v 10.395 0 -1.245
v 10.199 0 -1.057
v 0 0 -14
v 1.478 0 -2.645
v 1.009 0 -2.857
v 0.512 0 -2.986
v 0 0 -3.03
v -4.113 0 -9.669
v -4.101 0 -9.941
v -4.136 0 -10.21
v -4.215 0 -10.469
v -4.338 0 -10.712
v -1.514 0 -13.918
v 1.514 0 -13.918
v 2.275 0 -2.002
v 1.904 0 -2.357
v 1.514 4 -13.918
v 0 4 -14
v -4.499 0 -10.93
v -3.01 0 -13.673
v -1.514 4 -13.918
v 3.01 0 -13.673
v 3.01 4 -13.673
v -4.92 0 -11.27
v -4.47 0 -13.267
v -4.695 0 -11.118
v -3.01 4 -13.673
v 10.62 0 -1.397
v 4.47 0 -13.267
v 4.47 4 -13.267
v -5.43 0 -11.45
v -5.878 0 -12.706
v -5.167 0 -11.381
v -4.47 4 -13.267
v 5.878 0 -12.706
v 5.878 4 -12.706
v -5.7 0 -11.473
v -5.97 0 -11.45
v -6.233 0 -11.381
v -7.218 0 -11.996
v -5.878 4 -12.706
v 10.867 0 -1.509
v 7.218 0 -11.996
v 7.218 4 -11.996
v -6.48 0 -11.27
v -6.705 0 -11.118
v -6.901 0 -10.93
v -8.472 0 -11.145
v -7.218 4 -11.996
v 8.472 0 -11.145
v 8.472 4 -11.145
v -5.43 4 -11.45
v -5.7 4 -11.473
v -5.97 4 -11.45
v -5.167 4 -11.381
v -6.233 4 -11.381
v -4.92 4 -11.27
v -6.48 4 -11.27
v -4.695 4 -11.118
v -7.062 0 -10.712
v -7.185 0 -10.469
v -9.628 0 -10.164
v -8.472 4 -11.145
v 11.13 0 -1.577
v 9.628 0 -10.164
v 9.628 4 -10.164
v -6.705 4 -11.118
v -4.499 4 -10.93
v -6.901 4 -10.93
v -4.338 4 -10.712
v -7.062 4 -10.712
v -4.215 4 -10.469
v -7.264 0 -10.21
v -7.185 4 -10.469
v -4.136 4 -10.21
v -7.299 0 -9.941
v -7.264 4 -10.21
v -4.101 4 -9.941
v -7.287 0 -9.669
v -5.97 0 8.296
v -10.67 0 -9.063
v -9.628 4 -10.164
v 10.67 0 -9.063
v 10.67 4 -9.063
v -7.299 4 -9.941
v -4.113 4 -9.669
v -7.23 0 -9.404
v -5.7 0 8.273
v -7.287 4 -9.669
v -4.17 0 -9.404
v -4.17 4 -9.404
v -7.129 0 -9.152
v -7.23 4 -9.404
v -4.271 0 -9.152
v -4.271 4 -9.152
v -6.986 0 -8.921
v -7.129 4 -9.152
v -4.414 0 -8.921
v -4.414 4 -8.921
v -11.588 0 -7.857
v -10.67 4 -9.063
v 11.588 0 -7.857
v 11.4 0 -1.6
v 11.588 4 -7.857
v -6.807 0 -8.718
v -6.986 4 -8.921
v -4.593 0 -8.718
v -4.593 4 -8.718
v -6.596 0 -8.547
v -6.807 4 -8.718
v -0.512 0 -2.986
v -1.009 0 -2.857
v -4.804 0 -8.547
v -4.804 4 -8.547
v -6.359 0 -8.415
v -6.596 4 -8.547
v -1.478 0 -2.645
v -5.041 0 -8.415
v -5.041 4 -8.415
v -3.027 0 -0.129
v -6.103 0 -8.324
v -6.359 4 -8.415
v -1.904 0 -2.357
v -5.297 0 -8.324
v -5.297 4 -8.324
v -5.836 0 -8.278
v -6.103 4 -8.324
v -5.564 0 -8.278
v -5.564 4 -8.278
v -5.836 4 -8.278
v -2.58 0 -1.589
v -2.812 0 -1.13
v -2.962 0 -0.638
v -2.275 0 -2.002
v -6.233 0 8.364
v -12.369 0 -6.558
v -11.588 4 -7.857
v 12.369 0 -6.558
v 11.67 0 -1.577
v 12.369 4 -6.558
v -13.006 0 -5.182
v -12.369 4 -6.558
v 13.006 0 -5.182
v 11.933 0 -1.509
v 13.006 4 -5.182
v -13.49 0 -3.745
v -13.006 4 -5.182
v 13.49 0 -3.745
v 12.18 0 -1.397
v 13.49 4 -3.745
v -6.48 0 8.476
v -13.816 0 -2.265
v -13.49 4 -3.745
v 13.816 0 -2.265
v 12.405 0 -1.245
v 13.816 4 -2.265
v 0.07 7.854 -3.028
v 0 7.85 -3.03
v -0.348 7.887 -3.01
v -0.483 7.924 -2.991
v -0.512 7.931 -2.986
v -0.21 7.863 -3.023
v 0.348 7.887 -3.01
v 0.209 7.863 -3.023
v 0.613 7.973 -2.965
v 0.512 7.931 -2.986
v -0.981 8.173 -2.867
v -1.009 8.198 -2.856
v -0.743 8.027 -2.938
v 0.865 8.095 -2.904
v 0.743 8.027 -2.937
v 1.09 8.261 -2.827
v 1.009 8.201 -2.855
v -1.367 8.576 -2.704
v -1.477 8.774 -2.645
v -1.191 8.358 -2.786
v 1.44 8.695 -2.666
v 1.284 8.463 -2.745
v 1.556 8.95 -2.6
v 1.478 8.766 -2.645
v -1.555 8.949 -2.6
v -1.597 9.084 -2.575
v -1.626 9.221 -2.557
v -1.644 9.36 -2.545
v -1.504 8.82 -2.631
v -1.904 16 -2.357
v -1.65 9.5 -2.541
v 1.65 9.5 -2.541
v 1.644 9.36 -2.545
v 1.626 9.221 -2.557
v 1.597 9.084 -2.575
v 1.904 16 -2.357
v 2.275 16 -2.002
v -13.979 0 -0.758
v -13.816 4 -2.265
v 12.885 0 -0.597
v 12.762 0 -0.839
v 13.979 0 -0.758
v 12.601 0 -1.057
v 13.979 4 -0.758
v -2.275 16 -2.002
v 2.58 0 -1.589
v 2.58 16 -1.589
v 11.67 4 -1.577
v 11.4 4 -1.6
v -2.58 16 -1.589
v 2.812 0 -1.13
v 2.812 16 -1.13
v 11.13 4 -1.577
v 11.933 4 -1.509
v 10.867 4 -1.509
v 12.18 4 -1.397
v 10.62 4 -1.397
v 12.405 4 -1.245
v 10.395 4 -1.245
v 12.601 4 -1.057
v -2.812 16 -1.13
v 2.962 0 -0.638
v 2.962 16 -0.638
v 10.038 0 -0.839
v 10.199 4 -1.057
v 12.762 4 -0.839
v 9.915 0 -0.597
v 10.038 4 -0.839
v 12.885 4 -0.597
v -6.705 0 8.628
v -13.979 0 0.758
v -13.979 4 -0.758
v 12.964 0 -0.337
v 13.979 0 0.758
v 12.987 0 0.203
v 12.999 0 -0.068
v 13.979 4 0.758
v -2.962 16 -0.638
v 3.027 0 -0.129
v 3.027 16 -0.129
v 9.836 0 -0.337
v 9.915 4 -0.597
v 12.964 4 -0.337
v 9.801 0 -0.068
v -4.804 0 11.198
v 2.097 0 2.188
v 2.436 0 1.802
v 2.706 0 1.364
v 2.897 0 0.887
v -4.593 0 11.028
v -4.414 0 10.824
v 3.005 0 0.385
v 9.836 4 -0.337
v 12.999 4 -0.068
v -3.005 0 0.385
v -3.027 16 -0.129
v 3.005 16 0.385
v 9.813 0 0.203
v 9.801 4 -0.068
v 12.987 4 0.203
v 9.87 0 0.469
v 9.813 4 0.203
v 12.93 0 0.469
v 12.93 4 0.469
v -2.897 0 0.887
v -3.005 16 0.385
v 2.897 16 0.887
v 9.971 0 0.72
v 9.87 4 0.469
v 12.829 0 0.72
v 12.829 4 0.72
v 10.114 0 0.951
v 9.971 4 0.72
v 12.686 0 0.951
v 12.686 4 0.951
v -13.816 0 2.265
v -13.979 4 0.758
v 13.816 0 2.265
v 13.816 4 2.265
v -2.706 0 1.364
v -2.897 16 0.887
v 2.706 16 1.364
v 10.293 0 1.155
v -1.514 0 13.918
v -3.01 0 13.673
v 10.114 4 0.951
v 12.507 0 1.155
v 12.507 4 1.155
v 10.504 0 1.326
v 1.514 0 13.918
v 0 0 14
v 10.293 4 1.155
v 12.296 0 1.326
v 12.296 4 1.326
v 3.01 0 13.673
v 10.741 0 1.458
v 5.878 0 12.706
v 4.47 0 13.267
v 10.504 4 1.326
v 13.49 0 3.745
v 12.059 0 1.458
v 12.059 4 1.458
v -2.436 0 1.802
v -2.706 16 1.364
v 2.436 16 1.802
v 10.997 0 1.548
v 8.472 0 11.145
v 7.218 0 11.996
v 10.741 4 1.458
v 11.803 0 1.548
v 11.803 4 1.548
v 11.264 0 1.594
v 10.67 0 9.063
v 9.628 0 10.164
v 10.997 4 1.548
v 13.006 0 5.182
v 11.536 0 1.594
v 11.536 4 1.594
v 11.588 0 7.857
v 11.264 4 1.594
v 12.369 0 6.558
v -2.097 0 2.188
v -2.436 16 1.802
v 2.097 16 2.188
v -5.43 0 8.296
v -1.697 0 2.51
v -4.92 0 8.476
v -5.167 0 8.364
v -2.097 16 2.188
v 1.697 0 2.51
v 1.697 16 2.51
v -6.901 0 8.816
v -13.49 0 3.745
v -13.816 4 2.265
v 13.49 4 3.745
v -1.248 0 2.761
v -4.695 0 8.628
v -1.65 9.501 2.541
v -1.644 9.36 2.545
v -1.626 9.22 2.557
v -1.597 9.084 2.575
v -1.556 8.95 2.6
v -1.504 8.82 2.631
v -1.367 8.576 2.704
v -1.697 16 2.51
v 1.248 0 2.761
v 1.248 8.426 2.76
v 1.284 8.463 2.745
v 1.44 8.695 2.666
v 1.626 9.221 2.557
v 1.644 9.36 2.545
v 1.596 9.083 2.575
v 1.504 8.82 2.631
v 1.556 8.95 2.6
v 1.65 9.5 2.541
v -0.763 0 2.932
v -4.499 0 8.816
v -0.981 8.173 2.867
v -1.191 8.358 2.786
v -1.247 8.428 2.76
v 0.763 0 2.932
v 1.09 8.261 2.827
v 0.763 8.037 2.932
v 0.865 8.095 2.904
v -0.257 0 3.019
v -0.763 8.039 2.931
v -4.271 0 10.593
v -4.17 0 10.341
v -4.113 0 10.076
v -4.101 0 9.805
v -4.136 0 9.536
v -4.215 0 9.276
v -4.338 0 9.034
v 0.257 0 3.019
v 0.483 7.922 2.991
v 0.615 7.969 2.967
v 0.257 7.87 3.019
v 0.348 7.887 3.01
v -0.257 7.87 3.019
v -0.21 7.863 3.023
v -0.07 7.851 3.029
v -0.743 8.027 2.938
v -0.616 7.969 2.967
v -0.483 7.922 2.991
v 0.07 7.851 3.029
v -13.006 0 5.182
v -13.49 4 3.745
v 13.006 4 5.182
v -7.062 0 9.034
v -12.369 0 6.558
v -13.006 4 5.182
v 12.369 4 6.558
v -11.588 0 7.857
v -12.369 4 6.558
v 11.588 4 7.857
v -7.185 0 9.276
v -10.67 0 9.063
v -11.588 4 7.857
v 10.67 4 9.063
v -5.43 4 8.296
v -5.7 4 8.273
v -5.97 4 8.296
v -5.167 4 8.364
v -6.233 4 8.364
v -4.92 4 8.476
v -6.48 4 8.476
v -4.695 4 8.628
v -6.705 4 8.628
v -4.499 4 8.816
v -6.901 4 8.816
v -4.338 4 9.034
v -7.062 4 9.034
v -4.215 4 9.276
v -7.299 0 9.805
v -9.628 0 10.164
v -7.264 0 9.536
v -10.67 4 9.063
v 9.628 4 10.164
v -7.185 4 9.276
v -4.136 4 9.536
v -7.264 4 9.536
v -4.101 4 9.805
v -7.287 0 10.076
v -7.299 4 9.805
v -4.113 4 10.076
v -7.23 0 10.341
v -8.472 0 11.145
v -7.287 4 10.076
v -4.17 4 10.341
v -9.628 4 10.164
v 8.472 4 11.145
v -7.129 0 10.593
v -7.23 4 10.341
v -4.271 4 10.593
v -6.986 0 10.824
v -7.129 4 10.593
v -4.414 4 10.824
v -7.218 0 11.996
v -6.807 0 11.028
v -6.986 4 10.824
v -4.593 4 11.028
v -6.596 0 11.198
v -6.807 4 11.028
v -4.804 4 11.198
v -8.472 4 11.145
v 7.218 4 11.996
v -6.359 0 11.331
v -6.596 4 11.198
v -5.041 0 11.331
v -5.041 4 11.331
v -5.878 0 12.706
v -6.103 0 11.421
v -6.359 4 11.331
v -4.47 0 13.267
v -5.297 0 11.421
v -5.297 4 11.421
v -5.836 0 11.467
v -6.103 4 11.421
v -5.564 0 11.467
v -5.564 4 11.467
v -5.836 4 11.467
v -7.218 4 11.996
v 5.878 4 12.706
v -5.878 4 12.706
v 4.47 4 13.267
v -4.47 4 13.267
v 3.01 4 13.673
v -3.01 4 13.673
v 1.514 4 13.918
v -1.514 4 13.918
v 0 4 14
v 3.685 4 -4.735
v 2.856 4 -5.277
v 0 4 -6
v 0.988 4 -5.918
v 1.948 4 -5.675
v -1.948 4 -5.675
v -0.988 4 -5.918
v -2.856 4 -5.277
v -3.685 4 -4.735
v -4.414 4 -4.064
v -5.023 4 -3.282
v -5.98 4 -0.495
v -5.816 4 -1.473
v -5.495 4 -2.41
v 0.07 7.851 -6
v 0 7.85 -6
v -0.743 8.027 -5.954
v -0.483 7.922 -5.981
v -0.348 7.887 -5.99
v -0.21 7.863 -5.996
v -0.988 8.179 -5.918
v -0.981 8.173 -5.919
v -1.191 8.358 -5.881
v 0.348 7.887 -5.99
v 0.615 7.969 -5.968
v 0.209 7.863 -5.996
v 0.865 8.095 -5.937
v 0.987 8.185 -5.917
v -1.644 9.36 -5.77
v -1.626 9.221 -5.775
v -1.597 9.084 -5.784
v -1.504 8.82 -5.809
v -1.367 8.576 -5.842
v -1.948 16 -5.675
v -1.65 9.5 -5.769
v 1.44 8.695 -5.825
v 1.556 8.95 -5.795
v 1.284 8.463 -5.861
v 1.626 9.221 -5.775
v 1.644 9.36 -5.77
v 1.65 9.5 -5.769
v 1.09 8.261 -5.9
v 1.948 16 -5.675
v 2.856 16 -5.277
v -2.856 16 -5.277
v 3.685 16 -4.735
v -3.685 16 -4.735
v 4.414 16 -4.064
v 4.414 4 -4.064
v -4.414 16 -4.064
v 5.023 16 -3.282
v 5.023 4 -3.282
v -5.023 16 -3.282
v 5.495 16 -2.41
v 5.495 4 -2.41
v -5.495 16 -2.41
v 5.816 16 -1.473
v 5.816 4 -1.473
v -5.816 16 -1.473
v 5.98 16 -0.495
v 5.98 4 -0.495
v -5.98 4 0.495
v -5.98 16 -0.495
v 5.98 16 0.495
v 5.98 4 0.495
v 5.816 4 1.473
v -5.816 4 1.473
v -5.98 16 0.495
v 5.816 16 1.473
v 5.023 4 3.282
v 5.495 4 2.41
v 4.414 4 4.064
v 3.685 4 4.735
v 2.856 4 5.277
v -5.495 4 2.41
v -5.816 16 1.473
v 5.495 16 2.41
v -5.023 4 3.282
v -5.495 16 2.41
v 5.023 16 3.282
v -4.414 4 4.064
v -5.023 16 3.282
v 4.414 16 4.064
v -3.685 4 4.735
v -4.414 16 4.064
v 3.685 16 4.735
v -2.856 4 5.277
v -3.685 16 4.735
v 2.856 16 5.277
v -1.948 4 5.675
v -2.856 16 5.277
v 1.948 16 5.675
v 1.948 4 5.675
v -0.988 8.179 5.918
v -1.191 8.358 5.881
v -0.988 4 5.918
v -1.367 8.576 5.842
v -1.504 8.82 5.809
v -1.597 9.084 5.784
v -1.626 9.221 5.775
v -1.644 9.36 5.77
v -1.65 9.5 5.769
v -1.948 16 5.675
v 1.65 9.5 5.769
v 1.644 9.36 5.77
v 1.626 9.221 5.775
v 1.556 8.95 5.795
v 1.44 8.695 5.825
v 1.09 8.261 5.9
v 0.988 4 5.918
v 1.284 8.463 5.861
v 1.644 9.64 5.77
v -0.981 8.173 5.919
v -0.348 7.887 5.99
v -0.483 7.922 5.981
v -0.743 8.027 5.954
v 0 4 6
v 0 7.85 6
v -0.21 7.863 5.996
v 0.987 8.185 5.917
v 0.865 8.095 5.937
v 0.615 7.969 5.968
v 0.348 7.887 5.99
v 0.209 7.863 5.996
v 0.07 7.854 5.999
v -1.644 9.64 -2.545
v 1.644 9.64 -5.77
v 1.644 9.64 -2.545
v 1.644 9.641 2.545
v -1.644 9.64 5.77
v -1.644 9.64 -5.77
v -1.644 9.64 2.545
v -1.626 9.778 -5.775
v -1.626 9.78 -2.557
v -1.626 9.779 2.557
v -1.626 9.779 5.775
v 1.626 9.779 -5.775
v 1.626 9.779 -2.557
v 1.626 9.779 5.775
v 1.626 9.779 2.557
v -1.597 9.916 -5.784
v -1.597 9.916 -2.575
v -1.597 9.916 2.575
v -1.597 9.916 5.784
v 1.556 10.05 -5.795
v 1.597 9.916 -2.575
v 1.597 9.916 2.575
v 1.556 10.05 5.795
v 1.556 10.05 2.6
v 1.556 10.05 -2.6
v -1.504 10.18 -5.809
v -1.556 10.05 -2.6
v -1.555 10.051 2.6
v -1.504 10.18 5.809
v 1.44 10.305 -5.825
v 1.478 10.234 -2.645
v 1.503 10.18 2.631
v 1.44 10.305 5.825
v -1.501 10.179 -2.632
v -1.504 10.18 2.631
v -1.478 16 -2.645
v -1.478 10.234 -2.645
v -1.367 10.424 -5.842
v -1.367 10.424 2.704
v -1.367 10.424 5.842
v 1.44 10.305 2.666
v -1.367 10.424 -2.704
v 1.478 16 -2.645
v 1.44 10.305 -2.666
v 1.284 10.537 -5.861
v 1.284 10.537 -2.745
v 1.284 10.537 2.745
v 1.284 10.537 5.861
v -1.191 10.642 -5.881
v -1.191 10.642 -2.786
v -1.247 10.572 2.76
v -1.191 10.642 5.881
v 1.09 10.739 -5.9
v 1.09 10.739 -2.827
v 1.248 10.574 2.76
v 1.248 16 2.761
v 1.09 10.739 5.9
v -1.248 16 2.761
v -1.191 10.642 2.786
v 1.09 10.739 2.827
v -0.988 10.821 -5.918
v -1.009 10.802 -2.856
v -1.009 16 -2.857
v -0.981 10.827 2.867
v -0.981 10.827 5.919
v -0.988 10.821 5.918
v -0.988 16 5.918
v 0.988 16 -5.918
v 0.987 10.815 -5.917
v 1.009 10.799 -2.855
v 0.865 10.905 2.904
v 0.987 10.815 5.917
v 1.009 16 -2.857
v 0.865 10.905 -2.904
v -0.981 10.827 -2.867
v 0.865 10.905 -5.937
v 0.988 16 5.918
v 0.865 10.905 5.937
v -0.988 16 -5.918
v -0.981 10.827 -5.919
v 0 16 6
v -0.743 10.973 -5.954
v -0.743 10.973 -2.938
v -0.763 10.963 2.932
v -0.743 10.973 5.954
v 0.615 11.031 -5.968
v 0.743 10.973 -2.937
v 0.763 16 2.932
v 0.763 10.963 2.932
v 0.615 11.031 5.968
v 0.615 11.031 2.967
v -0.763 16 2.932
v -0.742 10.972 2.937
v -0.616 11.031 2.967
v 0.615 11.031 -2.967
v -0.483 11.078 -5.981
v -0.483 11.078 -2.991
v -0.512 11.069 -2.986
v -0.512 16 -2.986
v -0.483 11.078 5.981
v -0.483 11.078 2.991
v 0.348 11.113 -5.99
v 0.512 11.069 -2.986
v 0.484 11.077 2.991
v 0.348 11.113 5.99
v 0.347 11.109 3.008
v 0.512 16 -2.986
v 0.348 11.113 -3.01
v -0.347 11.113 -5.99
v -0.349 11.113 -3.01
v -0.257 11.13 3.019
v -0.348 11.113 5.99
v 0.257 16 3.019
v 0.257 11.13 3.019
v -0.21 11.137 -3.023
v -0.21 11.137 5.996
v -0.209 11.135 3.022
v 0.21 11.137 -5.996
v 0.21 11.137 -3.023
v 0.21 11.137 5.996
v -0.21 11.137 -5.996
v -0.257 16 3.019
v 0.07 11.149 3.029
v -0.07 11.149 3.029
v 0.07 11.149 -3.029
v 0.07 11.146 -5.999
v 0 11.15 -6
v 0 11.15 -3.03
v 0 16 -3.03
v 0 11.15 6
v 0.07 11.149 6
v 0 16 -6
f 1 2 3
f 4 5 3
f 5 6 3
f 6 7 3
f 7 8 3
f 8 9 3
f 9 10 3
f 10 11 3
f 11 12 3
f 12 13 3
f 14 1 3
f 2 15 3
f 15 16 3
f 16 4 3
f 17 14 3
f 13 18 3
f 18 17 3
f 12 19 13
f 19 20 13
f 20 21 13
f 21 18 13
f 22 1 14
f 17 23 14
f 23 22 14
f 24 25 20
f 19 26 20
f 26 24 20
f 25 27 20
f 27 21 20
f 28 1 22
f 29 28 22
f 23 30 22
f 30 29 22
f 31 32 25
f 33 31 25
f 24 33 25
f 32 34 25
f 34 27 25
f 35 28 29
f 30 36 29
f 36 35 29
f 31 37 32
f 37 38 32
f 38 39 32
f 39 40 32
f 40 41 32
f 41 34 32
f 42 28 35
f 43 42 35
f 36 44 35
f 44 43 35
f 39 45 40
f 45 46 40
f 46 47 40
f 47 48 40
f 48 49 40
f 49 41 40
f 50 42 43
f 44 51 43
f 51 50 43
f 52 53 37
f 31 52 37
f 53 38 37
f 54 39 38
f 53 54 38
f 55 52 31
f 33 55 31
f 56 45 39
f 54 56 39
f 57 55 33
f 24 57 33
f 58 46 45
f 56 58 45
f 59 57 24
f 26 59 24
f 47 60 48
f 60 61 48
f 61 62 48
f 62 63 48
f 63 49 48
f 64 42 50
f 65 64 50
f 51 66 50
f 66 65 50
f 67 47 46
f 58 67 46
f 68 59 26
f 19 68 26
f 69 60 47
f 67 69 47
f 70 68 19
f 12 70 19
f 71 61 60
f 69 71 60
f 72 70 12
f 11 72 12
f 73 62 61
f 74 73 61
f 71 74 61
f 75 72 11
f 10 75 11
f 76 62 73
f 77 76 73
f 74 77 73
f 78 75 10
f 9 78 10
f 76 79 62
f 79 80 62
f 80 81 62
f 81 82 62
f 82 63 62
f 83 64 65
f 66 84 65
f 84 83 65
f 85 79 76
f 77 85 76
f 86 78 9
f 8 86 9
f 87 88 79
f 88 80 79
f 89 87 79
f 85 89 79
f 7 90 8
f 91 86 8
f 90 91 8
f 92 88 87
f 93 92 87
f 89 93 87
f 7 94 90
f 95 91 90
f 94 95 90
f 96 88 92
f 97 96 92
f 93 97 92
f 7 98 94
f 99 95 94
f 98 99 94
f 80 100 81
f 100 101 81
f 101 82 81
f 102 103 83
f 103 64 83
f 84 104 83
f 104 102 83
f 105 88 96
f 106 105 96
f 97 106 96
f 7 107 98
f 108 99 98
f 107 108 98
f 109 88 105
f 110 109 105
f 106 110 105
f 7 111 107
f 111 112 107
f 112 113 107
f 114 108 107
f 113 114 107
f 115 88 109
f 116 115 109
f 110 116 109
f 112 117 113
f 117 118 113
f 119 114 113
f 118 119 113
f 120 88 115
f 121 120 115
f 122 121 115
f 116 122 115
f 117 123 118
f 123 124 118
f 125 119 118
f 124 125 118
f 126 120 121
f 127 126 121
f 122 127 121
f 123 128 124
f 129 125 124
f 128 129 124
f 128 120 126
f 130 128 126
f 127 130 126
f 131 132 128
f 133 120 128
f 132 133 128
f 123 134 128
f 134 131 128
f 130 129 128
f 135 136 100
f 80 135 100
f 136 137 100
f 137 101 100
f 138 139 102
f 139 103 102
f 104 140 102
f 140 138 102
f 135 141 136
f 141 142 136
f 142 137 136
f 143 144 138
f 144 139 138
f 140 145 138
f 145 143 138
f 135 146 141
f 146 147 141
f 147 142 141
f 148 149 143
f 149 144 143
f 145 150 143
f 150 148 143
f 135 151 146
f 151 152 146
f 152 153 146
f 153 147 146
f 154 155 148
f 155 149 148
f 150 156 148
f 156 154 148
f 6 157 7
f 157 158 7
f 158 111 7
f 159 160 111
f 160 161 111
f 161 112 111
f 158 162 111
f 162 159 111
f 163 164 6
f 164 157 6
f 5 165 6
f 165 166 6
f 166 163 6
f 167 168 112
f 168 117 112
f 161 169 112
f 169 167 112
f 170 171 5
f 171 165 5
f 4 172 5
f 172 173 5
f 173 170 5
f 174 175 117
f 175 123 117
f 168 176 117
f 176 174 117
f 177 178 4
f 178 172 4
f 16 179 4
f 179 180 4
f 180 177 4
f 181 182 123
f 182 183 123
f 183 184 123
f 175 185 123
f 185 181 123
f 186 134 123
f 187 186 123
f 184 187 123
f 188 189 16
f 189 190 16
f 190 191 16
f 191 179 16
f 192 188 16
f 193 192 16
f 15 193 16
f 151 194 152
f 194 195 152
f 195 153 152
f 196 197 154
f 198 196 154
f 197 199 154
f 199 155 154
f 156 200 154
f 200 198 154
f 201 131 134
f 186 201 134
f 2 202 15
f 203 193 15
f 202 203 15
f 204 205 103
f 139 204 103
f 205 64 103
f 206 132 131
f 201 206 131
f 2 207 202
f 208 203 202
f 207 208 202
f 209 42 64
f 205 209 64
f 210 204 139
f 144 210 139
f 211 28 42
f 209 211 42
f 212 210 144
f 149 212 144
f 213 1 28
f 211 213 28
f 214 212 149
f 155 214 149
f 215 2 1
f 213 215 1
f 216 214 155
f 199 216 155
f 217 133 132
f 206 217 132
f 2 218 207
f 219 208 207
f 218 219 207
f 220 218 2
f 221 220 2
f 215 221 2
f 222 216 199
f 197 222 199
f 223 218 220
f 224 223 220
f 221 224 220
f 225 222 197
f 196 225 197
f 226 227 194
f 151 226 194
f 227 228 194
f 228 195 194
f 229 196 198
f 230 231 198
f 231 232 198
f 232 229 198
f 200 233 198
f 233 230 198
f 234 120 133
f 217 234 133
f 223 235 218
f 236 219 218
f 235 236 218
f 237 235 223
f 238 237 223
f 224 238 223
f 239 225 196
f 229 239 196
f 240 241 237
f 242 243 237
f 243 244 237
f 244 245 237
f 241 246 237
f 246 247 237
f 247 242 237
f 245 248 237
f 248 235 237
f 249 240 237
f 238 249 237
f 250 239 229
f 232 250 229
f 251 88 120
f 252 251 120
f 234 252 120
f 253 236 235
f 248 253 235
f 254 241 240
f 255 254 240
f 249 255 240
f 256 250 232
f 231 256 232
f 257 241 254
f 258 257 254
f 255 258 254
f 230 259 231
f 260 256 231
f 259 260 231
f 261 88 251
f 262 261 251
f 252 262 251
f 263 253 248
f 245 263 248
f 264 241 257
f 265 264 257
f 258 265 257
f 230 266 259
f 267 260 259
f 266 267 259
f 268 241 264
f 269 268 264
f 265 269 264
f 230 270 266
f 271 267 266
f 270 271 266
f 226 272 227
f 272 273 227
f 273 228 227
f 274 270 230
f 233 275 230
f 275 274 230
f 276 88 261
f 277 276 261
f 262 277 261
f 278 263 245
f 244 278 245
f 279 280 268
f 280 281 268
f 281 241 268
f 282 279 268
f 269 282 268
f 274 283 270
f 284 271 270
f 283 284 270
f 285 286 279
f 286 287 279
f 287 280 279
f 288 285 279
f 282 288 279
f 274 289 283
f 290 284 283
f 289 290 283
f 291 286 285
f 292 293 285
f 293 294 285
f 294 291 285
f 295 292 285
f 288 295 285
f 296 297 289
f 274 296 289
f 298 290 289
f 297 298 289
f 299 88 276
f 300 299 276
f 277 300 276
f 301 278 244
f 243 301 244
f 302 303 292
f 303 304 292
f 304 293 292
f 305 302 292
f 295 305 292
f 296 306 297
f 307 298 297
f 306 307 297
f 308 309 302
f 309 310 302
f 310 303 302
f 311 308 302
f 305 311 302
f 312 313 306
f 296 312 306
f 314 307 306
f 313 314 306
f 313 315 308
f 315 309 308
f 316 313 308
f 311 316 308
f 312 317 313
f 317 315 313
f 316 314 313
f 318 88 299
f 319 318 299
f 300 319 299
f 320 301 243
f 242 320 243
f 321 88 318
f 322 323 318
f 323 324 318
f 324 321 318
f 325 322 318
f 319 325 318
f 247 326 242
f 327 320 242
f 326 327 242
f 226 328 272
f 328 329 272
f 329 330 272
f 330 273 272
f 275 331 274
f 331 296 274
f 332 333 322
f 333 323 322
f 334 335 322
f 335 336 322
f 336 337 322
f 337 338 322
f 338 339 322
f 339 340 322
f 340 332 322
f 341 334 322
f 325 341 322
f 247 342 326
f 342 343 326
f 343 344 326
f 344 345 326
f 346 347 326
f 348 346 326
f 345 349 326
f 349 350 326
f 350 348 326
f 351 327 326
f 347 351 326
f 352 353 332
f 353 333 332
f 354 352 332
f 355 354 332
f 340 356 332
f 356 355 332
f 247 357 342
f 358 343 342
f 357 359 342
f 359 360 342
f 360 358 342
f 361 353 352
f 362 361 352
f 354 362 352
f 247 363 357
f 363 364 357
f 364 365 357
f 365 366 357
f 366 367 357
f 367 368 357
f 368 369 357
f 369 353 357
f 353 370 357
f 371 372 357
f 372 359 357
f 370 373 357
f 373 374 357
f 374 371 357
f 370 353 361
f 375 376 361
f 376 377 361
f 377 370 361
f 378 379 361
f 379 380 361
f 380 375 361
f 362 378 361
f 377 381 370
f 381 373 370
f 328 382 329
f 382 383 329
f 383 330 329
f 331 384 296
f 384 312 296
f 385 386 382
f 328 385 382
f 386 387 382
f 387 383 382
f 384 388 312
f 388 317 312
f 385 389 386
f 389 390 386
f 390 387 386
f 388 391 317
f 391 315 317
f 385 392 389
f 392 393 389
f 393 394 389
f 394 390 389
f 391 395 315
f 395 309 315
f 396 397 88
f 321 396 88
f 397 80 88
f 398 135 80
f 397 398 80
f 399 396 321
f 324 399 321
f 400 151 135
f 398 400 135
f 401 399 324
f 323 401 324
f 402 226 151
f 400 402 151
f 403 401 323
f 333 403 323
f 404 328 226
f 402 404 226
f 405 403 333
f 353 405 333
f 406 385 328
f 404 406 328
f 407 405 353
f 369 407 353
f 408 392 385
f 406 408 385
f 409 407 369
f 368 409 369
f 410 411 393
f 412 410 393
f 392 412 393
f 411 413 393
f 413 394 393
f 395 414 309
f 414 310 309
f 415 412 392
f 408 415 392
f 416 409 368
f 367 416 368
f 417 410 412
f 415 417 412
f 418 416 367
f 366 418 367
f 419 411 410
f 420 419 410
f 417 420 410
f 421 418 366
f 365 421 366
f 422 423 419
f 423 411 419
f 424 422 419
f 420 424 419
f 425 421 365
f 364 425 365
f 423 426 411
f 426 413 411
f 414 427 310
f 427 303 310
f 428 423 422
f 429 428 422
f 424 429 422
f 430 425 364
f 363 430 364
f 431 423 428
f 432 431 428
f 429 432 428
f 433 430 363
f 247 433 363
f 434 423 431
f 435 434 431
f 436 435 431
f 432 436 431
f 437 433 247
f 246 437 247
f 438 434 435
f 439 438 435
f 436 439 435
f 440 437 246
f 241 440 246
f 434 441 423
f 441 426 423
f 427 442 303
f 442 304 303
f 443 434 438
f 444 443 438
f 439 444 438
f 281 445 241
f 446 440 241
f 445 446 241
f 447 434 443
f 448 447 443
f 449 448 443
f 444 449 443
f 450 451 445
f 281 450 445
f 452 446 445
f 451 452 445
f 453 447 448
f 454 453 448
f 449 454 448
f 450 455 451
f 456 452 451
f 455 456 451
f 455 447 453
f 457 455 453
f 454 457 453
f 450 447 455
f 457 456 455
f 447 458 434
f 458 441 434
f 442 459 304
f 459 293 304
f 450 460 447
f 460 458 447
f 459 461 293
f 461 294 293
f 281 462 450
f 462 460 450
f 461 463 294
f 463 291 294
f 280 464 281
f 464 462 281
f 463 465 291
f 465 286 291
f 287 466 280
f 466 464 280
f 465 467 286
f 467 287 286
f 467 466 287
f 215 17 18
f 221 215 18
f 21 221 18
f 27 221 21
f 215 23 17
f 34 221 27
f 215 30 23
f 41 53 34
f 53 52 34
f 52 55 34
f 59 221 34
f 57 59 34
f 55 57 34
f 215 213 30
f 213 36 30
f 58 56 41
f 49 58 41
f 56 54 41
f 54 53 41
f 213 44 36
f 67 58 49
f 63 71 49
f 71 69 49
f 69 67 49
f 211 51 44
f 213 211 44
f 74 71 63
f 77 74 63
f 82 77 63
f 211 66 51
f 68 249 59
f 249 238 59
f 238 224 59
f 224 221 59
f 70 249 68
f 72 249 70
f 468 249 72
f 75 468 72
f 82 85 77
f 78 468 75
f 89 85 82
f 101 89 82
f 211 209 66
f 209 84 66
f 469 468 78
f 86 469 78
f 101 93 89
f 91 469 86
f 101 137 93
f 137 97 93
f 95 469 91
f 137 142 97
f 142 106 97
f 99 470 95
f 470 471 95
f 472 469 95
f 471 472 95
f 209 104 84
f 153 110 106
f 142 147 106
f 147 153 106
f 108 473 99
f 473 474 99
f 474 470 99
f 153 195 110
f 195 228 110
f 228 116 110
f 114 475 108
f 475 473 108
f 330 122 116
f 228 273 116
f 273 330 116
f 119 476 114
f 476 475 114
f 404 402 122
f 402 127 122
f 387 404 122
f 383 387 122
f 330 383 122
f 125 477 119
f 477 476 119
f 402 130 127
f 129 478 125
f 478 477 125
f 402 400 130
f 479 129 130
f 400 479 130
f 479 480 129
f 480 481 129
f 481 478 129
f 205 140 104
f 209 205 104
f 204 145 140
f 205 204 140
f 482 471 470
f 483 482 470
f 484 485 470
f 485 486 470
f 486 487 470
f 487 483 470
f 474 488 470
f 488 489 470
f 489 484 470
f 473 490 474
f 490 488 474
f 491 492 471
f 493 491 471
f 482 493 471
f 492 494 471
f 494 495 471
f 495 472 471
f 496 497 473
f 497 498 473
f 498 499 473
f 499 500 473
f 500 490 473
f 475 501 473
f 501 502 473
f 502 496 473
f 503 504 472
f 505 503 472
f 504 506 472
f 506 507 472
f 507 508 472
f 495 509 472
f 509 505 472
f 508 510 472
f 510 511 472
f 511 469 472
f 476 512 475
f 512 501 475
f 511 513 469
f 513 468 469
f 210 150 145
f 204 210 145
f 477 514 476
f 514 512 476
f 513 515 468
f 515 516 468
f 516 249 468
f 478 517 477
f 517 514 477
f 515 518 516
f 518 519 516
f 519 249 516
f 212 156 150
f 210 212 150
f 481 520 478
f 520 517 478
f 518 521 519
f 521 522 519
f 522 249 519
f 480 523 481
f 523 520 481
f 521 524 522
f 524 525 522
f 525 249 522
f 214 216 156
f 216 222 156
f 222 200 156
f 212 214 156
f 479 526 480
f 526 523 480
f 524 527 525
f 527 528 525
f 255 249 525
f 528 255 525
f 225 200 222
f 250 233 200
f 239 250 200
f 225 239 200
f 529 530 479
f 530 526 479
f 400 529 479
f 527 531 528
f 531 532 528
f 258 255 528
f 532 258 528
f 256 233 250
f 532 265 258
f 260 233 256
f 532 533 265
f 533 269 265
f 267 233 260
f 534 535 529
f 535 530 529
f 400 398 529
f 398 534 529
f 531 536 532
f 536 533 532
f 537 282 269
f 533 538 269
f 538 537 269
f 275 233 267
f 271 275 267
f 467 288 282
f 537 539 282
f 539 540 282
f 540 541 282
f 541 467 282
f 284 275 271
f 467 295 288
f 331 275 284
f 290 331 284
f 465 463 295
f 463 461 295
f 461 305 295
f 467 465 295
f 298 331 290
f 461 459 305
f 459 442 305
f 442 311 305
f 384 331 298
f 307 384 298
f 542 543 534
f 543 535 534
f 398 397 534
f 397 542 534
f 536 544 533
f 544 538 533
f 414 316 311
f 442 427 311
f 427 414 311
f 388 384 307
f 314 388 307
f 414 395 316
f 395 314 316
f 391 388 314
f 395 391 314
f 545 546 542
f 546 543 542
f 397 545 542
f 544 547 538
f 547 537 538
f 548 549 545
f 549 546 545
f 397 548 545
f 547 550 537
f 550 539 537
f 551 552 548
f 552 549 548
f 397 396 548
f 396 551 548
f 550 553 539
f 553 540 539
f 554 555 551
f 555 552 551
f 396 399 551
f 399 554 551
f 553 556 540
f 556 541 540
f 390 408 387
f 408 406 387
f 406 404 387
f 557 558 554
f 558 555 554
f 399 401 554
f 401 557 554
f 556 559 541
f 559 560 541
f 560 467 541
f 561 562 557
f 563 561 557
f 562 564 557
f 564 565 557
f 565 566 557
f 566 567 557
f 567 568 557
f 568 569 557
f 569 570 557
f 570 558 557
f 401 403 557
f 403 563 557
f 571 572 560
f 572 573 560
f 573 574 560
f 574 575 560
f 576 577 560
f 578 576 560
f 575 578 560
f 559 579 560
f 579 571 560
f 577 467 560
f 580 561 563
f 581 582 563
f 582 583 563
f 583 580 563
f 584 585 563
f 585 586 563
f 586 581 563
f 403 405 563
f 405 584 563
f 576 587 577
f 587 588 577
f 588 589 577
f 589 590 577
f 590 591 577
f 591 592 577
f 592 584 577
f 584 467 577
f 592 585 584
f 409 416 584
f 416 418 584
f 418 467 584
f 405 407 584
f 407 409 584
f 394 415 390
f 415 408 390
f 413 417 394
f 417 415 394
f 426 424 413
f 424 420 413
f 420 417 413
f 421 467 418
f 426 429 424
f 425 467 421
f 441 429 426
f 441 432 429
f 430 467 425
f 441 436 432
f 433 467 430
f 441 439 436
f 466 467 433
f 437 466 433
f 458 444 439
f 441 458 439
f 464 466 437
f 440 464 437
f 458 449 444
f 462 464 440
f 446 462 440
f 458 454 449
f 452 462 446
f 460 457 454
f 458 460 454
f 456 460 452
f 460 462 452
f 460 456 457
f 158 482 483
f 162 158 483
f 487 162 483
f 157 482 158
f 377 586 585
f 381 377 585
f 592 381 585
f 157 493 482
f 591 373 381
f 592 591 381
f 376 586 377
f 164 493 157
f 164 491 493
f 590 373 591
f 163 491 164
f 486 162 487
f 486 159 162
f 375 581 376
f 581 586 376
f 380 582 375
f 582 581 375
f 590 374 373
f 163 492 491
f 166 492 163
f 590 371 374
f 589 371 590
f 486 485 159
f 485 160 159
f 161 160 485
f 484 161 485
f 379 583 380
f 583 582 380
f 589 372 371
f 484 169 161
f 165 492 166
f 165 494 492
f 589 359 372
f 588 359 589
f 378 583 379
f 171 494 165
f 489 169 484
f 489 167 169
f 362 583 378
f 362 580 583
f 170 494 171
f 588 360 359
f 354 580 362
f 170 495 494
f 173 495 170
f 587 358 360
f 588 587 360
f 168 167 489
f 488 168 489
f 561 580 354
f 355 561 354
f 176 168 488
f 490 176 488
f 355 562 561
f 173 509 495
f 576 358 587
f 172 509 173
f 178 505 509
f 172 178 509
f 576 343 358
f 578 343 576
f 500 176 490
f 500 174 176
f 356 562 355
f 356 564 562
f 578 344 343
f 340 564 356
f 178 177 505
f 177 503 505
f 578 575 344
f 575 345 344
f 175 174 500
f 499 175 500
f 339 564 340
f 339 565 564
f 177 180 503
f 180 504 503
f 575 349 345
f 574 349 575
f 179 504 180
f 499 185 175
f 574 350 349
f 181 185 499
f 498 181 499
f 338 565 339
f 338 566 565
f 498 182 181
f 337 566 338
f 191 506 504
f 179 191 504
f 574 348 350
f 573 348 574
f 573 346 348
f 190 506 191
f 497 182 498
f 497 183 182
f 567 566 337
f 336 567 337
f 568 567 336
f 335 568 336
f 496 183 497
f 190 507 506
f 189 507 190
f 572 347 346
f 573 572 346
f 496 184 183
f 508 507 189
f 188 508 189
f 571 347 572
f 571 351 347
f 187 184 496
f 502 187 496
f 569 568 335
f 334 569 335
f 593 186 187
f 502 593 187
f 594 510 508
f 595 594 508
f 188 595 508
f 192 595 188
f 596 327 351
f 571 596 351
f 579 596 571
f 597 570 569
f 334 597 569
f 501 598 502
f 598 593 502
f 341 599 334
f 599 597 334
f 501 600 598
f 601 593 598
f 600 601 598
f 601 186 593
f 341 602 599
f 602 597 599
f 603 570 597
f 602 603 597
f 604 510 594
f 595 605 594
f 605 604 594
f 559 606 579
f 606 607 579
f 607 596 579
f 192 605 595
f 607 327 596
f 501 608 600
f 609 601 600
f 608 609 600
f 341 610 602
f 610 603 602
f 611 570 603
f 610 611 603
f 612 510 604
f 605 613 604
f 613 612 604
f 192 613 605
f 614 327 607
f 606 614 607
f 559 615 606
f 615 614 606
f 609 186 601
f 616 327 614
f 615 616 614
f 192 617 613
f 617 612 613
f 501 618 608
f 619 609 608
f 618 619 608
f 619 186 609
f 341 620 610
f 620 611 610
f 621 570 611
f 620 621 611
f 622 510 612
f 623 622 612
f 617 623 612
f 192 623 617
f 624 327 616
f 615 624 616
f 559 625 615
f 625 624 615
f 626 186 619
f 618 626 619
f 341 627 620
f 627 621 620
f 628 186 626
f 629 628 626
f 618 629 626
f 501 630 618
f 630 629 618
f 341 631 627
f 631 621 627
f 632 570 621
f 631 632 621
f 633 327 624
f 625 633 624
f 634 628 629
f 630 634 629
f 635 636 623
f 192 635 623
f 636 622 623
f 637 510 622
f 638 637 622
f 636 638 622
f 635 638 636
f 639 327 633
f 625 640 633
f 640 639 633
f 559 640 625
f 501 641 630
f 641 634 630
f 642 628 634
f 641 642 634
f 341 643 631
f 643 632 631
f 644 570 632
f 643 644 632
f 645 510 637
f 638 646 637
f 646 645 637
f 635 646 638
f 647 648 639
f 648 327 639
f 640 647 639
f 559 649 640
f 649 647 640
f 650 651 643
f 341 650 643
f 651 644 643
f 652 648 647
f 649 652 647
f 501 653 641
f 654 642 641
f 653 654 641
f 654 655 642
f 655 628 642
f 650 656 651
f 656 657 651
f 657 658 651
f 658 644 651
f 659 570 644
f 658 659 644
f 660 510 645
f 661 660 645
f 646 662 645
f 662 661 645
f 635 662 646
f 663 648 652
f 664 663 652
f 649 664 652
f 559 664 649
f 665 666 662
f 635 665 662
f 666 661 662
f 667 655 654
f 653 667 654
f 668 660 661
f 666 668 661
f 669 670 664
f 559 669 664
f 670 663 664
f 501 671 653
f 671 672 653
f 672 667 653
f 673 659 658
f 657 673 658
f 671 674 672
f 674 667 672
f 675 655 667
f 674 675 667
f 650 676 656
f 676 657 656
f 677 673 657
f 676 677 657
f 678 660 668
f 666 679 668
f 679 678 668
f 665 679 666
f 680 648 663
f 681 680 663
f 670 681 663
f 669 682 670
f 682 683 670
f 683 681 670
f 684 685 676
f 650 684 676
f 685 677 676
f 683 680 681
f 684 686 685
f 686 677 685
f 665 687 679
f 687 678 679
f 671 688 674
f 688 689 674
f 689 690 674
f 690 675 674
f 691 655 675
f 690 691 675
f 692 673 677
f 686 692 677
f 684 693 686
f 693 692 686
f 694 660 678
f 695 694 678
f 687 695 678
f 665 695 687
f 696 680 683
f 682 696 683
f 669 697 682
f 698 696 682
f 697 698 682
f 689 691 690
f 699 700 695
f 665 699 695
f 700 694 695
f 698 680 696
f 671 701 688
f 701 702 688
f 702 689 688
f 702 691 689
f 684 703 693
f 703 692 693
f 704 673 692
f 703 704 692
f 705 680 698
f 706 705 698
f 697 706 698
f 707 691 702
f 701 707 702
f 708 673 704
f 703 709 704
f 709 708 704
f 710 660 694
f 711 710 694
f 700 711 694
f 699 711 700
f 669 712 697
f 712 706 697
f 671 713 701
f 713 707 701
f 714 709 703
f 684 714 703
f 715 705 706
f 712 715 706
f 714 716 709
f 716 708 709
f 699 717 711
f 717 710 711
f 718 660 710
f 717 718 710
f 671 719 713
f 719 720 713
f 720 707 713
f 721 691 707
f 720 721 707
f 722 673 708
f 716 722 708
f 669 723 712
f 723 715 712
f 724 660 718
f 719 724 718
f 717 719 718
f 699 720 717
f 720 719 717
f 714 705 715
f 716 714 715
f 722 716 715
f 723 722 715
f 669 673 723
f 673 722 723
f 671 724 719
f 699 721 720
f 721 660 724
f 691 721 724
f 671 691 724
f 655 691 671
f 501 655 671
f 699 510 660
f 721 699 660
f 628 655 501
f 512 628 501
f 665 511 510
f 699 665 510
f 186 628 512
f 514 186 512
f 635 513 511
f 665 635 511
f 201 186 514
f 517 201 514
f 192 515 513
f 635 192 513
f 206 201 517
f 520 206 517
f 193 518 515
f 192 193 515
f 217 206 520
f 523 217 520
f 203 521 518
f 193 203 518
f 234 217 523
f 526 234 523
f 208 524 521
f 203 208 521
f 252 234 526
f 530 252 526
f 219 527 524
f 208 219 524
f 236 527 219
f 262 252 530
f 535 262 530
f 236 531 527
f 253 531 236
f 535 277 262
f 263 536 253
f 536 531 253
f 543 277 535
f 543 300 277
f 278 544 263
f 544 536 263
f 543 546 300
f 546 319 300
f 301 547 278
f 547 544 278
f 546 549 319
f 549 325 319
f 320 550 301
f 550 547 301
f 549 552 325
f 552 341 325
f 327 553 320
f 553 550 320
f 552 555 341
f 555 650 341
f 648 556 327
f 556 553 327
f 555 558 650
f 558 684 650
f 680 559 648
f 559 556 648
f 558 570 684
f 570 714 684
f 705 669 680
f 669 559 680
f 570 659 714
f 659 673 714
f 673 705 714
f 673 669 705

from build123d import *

# Parameters (mm, degrees)
ESQUISSE2_R             = 1.6
ENL_V_MAT_EXTRU_1_DEPTH = 26.455844123
ESQUISSE3_R             = 1.65
ENL_V_MAT_EXTRU_2_DEPTH = 30.189039039


with BuildPart() as part:
    # Esquisse1 → Révolution1 (revolve)
    with BuildSketch(Plane.XY, mode=Mode.PRIVATE) as r_volution1_sk:
        Polygon((-3.03, 0), (-3.03, 16), (-6, 16), (-6, 4), (-14, 4), (-14, 0), align=None)
    revolve(r_volution1_sk.sketch.rotate(Axis((0, 0, 0), (0, 1, 0)), 270), axis=Axis((0, 0, 0), (0, 1, 0)))

    # Esquisse2 → Enlèv. mat.-Extru.1 (cut, through all)
    with BuildSketch(Plane.XZ):
        with Locations(Location((11.4, 0, 0), (0, 0, 270))):
            Circle(ESQUISSE2_R)
        with Locations(Location((-5.7, -9.872689603, 0), (0, 0, 270))):
            Circle(ESQUISSE2_R)
        with Locations(Location((-5.7, 9.872689603, 0), (0, 0, 270))):
            Circle(ESQUISSE2_R)
    extrude(amount=-ENL_V_MAT_EXTRU_1_DEPTH, mode=Mode.SUBTRACT)

    # Esquisse3 → Enlèv. mat.-Extru.2 (cut, through all)
    with BuildSketch(Plane.XY.offset(6)):
        with Locations((0, 9.5)):
            Circle(ESQUISSE3_R)
    extrude(amount=-ENL_V_MAT_EXTRU_2_DEPTH, mode=Mode.SUBTRACT)


solid = part.part
